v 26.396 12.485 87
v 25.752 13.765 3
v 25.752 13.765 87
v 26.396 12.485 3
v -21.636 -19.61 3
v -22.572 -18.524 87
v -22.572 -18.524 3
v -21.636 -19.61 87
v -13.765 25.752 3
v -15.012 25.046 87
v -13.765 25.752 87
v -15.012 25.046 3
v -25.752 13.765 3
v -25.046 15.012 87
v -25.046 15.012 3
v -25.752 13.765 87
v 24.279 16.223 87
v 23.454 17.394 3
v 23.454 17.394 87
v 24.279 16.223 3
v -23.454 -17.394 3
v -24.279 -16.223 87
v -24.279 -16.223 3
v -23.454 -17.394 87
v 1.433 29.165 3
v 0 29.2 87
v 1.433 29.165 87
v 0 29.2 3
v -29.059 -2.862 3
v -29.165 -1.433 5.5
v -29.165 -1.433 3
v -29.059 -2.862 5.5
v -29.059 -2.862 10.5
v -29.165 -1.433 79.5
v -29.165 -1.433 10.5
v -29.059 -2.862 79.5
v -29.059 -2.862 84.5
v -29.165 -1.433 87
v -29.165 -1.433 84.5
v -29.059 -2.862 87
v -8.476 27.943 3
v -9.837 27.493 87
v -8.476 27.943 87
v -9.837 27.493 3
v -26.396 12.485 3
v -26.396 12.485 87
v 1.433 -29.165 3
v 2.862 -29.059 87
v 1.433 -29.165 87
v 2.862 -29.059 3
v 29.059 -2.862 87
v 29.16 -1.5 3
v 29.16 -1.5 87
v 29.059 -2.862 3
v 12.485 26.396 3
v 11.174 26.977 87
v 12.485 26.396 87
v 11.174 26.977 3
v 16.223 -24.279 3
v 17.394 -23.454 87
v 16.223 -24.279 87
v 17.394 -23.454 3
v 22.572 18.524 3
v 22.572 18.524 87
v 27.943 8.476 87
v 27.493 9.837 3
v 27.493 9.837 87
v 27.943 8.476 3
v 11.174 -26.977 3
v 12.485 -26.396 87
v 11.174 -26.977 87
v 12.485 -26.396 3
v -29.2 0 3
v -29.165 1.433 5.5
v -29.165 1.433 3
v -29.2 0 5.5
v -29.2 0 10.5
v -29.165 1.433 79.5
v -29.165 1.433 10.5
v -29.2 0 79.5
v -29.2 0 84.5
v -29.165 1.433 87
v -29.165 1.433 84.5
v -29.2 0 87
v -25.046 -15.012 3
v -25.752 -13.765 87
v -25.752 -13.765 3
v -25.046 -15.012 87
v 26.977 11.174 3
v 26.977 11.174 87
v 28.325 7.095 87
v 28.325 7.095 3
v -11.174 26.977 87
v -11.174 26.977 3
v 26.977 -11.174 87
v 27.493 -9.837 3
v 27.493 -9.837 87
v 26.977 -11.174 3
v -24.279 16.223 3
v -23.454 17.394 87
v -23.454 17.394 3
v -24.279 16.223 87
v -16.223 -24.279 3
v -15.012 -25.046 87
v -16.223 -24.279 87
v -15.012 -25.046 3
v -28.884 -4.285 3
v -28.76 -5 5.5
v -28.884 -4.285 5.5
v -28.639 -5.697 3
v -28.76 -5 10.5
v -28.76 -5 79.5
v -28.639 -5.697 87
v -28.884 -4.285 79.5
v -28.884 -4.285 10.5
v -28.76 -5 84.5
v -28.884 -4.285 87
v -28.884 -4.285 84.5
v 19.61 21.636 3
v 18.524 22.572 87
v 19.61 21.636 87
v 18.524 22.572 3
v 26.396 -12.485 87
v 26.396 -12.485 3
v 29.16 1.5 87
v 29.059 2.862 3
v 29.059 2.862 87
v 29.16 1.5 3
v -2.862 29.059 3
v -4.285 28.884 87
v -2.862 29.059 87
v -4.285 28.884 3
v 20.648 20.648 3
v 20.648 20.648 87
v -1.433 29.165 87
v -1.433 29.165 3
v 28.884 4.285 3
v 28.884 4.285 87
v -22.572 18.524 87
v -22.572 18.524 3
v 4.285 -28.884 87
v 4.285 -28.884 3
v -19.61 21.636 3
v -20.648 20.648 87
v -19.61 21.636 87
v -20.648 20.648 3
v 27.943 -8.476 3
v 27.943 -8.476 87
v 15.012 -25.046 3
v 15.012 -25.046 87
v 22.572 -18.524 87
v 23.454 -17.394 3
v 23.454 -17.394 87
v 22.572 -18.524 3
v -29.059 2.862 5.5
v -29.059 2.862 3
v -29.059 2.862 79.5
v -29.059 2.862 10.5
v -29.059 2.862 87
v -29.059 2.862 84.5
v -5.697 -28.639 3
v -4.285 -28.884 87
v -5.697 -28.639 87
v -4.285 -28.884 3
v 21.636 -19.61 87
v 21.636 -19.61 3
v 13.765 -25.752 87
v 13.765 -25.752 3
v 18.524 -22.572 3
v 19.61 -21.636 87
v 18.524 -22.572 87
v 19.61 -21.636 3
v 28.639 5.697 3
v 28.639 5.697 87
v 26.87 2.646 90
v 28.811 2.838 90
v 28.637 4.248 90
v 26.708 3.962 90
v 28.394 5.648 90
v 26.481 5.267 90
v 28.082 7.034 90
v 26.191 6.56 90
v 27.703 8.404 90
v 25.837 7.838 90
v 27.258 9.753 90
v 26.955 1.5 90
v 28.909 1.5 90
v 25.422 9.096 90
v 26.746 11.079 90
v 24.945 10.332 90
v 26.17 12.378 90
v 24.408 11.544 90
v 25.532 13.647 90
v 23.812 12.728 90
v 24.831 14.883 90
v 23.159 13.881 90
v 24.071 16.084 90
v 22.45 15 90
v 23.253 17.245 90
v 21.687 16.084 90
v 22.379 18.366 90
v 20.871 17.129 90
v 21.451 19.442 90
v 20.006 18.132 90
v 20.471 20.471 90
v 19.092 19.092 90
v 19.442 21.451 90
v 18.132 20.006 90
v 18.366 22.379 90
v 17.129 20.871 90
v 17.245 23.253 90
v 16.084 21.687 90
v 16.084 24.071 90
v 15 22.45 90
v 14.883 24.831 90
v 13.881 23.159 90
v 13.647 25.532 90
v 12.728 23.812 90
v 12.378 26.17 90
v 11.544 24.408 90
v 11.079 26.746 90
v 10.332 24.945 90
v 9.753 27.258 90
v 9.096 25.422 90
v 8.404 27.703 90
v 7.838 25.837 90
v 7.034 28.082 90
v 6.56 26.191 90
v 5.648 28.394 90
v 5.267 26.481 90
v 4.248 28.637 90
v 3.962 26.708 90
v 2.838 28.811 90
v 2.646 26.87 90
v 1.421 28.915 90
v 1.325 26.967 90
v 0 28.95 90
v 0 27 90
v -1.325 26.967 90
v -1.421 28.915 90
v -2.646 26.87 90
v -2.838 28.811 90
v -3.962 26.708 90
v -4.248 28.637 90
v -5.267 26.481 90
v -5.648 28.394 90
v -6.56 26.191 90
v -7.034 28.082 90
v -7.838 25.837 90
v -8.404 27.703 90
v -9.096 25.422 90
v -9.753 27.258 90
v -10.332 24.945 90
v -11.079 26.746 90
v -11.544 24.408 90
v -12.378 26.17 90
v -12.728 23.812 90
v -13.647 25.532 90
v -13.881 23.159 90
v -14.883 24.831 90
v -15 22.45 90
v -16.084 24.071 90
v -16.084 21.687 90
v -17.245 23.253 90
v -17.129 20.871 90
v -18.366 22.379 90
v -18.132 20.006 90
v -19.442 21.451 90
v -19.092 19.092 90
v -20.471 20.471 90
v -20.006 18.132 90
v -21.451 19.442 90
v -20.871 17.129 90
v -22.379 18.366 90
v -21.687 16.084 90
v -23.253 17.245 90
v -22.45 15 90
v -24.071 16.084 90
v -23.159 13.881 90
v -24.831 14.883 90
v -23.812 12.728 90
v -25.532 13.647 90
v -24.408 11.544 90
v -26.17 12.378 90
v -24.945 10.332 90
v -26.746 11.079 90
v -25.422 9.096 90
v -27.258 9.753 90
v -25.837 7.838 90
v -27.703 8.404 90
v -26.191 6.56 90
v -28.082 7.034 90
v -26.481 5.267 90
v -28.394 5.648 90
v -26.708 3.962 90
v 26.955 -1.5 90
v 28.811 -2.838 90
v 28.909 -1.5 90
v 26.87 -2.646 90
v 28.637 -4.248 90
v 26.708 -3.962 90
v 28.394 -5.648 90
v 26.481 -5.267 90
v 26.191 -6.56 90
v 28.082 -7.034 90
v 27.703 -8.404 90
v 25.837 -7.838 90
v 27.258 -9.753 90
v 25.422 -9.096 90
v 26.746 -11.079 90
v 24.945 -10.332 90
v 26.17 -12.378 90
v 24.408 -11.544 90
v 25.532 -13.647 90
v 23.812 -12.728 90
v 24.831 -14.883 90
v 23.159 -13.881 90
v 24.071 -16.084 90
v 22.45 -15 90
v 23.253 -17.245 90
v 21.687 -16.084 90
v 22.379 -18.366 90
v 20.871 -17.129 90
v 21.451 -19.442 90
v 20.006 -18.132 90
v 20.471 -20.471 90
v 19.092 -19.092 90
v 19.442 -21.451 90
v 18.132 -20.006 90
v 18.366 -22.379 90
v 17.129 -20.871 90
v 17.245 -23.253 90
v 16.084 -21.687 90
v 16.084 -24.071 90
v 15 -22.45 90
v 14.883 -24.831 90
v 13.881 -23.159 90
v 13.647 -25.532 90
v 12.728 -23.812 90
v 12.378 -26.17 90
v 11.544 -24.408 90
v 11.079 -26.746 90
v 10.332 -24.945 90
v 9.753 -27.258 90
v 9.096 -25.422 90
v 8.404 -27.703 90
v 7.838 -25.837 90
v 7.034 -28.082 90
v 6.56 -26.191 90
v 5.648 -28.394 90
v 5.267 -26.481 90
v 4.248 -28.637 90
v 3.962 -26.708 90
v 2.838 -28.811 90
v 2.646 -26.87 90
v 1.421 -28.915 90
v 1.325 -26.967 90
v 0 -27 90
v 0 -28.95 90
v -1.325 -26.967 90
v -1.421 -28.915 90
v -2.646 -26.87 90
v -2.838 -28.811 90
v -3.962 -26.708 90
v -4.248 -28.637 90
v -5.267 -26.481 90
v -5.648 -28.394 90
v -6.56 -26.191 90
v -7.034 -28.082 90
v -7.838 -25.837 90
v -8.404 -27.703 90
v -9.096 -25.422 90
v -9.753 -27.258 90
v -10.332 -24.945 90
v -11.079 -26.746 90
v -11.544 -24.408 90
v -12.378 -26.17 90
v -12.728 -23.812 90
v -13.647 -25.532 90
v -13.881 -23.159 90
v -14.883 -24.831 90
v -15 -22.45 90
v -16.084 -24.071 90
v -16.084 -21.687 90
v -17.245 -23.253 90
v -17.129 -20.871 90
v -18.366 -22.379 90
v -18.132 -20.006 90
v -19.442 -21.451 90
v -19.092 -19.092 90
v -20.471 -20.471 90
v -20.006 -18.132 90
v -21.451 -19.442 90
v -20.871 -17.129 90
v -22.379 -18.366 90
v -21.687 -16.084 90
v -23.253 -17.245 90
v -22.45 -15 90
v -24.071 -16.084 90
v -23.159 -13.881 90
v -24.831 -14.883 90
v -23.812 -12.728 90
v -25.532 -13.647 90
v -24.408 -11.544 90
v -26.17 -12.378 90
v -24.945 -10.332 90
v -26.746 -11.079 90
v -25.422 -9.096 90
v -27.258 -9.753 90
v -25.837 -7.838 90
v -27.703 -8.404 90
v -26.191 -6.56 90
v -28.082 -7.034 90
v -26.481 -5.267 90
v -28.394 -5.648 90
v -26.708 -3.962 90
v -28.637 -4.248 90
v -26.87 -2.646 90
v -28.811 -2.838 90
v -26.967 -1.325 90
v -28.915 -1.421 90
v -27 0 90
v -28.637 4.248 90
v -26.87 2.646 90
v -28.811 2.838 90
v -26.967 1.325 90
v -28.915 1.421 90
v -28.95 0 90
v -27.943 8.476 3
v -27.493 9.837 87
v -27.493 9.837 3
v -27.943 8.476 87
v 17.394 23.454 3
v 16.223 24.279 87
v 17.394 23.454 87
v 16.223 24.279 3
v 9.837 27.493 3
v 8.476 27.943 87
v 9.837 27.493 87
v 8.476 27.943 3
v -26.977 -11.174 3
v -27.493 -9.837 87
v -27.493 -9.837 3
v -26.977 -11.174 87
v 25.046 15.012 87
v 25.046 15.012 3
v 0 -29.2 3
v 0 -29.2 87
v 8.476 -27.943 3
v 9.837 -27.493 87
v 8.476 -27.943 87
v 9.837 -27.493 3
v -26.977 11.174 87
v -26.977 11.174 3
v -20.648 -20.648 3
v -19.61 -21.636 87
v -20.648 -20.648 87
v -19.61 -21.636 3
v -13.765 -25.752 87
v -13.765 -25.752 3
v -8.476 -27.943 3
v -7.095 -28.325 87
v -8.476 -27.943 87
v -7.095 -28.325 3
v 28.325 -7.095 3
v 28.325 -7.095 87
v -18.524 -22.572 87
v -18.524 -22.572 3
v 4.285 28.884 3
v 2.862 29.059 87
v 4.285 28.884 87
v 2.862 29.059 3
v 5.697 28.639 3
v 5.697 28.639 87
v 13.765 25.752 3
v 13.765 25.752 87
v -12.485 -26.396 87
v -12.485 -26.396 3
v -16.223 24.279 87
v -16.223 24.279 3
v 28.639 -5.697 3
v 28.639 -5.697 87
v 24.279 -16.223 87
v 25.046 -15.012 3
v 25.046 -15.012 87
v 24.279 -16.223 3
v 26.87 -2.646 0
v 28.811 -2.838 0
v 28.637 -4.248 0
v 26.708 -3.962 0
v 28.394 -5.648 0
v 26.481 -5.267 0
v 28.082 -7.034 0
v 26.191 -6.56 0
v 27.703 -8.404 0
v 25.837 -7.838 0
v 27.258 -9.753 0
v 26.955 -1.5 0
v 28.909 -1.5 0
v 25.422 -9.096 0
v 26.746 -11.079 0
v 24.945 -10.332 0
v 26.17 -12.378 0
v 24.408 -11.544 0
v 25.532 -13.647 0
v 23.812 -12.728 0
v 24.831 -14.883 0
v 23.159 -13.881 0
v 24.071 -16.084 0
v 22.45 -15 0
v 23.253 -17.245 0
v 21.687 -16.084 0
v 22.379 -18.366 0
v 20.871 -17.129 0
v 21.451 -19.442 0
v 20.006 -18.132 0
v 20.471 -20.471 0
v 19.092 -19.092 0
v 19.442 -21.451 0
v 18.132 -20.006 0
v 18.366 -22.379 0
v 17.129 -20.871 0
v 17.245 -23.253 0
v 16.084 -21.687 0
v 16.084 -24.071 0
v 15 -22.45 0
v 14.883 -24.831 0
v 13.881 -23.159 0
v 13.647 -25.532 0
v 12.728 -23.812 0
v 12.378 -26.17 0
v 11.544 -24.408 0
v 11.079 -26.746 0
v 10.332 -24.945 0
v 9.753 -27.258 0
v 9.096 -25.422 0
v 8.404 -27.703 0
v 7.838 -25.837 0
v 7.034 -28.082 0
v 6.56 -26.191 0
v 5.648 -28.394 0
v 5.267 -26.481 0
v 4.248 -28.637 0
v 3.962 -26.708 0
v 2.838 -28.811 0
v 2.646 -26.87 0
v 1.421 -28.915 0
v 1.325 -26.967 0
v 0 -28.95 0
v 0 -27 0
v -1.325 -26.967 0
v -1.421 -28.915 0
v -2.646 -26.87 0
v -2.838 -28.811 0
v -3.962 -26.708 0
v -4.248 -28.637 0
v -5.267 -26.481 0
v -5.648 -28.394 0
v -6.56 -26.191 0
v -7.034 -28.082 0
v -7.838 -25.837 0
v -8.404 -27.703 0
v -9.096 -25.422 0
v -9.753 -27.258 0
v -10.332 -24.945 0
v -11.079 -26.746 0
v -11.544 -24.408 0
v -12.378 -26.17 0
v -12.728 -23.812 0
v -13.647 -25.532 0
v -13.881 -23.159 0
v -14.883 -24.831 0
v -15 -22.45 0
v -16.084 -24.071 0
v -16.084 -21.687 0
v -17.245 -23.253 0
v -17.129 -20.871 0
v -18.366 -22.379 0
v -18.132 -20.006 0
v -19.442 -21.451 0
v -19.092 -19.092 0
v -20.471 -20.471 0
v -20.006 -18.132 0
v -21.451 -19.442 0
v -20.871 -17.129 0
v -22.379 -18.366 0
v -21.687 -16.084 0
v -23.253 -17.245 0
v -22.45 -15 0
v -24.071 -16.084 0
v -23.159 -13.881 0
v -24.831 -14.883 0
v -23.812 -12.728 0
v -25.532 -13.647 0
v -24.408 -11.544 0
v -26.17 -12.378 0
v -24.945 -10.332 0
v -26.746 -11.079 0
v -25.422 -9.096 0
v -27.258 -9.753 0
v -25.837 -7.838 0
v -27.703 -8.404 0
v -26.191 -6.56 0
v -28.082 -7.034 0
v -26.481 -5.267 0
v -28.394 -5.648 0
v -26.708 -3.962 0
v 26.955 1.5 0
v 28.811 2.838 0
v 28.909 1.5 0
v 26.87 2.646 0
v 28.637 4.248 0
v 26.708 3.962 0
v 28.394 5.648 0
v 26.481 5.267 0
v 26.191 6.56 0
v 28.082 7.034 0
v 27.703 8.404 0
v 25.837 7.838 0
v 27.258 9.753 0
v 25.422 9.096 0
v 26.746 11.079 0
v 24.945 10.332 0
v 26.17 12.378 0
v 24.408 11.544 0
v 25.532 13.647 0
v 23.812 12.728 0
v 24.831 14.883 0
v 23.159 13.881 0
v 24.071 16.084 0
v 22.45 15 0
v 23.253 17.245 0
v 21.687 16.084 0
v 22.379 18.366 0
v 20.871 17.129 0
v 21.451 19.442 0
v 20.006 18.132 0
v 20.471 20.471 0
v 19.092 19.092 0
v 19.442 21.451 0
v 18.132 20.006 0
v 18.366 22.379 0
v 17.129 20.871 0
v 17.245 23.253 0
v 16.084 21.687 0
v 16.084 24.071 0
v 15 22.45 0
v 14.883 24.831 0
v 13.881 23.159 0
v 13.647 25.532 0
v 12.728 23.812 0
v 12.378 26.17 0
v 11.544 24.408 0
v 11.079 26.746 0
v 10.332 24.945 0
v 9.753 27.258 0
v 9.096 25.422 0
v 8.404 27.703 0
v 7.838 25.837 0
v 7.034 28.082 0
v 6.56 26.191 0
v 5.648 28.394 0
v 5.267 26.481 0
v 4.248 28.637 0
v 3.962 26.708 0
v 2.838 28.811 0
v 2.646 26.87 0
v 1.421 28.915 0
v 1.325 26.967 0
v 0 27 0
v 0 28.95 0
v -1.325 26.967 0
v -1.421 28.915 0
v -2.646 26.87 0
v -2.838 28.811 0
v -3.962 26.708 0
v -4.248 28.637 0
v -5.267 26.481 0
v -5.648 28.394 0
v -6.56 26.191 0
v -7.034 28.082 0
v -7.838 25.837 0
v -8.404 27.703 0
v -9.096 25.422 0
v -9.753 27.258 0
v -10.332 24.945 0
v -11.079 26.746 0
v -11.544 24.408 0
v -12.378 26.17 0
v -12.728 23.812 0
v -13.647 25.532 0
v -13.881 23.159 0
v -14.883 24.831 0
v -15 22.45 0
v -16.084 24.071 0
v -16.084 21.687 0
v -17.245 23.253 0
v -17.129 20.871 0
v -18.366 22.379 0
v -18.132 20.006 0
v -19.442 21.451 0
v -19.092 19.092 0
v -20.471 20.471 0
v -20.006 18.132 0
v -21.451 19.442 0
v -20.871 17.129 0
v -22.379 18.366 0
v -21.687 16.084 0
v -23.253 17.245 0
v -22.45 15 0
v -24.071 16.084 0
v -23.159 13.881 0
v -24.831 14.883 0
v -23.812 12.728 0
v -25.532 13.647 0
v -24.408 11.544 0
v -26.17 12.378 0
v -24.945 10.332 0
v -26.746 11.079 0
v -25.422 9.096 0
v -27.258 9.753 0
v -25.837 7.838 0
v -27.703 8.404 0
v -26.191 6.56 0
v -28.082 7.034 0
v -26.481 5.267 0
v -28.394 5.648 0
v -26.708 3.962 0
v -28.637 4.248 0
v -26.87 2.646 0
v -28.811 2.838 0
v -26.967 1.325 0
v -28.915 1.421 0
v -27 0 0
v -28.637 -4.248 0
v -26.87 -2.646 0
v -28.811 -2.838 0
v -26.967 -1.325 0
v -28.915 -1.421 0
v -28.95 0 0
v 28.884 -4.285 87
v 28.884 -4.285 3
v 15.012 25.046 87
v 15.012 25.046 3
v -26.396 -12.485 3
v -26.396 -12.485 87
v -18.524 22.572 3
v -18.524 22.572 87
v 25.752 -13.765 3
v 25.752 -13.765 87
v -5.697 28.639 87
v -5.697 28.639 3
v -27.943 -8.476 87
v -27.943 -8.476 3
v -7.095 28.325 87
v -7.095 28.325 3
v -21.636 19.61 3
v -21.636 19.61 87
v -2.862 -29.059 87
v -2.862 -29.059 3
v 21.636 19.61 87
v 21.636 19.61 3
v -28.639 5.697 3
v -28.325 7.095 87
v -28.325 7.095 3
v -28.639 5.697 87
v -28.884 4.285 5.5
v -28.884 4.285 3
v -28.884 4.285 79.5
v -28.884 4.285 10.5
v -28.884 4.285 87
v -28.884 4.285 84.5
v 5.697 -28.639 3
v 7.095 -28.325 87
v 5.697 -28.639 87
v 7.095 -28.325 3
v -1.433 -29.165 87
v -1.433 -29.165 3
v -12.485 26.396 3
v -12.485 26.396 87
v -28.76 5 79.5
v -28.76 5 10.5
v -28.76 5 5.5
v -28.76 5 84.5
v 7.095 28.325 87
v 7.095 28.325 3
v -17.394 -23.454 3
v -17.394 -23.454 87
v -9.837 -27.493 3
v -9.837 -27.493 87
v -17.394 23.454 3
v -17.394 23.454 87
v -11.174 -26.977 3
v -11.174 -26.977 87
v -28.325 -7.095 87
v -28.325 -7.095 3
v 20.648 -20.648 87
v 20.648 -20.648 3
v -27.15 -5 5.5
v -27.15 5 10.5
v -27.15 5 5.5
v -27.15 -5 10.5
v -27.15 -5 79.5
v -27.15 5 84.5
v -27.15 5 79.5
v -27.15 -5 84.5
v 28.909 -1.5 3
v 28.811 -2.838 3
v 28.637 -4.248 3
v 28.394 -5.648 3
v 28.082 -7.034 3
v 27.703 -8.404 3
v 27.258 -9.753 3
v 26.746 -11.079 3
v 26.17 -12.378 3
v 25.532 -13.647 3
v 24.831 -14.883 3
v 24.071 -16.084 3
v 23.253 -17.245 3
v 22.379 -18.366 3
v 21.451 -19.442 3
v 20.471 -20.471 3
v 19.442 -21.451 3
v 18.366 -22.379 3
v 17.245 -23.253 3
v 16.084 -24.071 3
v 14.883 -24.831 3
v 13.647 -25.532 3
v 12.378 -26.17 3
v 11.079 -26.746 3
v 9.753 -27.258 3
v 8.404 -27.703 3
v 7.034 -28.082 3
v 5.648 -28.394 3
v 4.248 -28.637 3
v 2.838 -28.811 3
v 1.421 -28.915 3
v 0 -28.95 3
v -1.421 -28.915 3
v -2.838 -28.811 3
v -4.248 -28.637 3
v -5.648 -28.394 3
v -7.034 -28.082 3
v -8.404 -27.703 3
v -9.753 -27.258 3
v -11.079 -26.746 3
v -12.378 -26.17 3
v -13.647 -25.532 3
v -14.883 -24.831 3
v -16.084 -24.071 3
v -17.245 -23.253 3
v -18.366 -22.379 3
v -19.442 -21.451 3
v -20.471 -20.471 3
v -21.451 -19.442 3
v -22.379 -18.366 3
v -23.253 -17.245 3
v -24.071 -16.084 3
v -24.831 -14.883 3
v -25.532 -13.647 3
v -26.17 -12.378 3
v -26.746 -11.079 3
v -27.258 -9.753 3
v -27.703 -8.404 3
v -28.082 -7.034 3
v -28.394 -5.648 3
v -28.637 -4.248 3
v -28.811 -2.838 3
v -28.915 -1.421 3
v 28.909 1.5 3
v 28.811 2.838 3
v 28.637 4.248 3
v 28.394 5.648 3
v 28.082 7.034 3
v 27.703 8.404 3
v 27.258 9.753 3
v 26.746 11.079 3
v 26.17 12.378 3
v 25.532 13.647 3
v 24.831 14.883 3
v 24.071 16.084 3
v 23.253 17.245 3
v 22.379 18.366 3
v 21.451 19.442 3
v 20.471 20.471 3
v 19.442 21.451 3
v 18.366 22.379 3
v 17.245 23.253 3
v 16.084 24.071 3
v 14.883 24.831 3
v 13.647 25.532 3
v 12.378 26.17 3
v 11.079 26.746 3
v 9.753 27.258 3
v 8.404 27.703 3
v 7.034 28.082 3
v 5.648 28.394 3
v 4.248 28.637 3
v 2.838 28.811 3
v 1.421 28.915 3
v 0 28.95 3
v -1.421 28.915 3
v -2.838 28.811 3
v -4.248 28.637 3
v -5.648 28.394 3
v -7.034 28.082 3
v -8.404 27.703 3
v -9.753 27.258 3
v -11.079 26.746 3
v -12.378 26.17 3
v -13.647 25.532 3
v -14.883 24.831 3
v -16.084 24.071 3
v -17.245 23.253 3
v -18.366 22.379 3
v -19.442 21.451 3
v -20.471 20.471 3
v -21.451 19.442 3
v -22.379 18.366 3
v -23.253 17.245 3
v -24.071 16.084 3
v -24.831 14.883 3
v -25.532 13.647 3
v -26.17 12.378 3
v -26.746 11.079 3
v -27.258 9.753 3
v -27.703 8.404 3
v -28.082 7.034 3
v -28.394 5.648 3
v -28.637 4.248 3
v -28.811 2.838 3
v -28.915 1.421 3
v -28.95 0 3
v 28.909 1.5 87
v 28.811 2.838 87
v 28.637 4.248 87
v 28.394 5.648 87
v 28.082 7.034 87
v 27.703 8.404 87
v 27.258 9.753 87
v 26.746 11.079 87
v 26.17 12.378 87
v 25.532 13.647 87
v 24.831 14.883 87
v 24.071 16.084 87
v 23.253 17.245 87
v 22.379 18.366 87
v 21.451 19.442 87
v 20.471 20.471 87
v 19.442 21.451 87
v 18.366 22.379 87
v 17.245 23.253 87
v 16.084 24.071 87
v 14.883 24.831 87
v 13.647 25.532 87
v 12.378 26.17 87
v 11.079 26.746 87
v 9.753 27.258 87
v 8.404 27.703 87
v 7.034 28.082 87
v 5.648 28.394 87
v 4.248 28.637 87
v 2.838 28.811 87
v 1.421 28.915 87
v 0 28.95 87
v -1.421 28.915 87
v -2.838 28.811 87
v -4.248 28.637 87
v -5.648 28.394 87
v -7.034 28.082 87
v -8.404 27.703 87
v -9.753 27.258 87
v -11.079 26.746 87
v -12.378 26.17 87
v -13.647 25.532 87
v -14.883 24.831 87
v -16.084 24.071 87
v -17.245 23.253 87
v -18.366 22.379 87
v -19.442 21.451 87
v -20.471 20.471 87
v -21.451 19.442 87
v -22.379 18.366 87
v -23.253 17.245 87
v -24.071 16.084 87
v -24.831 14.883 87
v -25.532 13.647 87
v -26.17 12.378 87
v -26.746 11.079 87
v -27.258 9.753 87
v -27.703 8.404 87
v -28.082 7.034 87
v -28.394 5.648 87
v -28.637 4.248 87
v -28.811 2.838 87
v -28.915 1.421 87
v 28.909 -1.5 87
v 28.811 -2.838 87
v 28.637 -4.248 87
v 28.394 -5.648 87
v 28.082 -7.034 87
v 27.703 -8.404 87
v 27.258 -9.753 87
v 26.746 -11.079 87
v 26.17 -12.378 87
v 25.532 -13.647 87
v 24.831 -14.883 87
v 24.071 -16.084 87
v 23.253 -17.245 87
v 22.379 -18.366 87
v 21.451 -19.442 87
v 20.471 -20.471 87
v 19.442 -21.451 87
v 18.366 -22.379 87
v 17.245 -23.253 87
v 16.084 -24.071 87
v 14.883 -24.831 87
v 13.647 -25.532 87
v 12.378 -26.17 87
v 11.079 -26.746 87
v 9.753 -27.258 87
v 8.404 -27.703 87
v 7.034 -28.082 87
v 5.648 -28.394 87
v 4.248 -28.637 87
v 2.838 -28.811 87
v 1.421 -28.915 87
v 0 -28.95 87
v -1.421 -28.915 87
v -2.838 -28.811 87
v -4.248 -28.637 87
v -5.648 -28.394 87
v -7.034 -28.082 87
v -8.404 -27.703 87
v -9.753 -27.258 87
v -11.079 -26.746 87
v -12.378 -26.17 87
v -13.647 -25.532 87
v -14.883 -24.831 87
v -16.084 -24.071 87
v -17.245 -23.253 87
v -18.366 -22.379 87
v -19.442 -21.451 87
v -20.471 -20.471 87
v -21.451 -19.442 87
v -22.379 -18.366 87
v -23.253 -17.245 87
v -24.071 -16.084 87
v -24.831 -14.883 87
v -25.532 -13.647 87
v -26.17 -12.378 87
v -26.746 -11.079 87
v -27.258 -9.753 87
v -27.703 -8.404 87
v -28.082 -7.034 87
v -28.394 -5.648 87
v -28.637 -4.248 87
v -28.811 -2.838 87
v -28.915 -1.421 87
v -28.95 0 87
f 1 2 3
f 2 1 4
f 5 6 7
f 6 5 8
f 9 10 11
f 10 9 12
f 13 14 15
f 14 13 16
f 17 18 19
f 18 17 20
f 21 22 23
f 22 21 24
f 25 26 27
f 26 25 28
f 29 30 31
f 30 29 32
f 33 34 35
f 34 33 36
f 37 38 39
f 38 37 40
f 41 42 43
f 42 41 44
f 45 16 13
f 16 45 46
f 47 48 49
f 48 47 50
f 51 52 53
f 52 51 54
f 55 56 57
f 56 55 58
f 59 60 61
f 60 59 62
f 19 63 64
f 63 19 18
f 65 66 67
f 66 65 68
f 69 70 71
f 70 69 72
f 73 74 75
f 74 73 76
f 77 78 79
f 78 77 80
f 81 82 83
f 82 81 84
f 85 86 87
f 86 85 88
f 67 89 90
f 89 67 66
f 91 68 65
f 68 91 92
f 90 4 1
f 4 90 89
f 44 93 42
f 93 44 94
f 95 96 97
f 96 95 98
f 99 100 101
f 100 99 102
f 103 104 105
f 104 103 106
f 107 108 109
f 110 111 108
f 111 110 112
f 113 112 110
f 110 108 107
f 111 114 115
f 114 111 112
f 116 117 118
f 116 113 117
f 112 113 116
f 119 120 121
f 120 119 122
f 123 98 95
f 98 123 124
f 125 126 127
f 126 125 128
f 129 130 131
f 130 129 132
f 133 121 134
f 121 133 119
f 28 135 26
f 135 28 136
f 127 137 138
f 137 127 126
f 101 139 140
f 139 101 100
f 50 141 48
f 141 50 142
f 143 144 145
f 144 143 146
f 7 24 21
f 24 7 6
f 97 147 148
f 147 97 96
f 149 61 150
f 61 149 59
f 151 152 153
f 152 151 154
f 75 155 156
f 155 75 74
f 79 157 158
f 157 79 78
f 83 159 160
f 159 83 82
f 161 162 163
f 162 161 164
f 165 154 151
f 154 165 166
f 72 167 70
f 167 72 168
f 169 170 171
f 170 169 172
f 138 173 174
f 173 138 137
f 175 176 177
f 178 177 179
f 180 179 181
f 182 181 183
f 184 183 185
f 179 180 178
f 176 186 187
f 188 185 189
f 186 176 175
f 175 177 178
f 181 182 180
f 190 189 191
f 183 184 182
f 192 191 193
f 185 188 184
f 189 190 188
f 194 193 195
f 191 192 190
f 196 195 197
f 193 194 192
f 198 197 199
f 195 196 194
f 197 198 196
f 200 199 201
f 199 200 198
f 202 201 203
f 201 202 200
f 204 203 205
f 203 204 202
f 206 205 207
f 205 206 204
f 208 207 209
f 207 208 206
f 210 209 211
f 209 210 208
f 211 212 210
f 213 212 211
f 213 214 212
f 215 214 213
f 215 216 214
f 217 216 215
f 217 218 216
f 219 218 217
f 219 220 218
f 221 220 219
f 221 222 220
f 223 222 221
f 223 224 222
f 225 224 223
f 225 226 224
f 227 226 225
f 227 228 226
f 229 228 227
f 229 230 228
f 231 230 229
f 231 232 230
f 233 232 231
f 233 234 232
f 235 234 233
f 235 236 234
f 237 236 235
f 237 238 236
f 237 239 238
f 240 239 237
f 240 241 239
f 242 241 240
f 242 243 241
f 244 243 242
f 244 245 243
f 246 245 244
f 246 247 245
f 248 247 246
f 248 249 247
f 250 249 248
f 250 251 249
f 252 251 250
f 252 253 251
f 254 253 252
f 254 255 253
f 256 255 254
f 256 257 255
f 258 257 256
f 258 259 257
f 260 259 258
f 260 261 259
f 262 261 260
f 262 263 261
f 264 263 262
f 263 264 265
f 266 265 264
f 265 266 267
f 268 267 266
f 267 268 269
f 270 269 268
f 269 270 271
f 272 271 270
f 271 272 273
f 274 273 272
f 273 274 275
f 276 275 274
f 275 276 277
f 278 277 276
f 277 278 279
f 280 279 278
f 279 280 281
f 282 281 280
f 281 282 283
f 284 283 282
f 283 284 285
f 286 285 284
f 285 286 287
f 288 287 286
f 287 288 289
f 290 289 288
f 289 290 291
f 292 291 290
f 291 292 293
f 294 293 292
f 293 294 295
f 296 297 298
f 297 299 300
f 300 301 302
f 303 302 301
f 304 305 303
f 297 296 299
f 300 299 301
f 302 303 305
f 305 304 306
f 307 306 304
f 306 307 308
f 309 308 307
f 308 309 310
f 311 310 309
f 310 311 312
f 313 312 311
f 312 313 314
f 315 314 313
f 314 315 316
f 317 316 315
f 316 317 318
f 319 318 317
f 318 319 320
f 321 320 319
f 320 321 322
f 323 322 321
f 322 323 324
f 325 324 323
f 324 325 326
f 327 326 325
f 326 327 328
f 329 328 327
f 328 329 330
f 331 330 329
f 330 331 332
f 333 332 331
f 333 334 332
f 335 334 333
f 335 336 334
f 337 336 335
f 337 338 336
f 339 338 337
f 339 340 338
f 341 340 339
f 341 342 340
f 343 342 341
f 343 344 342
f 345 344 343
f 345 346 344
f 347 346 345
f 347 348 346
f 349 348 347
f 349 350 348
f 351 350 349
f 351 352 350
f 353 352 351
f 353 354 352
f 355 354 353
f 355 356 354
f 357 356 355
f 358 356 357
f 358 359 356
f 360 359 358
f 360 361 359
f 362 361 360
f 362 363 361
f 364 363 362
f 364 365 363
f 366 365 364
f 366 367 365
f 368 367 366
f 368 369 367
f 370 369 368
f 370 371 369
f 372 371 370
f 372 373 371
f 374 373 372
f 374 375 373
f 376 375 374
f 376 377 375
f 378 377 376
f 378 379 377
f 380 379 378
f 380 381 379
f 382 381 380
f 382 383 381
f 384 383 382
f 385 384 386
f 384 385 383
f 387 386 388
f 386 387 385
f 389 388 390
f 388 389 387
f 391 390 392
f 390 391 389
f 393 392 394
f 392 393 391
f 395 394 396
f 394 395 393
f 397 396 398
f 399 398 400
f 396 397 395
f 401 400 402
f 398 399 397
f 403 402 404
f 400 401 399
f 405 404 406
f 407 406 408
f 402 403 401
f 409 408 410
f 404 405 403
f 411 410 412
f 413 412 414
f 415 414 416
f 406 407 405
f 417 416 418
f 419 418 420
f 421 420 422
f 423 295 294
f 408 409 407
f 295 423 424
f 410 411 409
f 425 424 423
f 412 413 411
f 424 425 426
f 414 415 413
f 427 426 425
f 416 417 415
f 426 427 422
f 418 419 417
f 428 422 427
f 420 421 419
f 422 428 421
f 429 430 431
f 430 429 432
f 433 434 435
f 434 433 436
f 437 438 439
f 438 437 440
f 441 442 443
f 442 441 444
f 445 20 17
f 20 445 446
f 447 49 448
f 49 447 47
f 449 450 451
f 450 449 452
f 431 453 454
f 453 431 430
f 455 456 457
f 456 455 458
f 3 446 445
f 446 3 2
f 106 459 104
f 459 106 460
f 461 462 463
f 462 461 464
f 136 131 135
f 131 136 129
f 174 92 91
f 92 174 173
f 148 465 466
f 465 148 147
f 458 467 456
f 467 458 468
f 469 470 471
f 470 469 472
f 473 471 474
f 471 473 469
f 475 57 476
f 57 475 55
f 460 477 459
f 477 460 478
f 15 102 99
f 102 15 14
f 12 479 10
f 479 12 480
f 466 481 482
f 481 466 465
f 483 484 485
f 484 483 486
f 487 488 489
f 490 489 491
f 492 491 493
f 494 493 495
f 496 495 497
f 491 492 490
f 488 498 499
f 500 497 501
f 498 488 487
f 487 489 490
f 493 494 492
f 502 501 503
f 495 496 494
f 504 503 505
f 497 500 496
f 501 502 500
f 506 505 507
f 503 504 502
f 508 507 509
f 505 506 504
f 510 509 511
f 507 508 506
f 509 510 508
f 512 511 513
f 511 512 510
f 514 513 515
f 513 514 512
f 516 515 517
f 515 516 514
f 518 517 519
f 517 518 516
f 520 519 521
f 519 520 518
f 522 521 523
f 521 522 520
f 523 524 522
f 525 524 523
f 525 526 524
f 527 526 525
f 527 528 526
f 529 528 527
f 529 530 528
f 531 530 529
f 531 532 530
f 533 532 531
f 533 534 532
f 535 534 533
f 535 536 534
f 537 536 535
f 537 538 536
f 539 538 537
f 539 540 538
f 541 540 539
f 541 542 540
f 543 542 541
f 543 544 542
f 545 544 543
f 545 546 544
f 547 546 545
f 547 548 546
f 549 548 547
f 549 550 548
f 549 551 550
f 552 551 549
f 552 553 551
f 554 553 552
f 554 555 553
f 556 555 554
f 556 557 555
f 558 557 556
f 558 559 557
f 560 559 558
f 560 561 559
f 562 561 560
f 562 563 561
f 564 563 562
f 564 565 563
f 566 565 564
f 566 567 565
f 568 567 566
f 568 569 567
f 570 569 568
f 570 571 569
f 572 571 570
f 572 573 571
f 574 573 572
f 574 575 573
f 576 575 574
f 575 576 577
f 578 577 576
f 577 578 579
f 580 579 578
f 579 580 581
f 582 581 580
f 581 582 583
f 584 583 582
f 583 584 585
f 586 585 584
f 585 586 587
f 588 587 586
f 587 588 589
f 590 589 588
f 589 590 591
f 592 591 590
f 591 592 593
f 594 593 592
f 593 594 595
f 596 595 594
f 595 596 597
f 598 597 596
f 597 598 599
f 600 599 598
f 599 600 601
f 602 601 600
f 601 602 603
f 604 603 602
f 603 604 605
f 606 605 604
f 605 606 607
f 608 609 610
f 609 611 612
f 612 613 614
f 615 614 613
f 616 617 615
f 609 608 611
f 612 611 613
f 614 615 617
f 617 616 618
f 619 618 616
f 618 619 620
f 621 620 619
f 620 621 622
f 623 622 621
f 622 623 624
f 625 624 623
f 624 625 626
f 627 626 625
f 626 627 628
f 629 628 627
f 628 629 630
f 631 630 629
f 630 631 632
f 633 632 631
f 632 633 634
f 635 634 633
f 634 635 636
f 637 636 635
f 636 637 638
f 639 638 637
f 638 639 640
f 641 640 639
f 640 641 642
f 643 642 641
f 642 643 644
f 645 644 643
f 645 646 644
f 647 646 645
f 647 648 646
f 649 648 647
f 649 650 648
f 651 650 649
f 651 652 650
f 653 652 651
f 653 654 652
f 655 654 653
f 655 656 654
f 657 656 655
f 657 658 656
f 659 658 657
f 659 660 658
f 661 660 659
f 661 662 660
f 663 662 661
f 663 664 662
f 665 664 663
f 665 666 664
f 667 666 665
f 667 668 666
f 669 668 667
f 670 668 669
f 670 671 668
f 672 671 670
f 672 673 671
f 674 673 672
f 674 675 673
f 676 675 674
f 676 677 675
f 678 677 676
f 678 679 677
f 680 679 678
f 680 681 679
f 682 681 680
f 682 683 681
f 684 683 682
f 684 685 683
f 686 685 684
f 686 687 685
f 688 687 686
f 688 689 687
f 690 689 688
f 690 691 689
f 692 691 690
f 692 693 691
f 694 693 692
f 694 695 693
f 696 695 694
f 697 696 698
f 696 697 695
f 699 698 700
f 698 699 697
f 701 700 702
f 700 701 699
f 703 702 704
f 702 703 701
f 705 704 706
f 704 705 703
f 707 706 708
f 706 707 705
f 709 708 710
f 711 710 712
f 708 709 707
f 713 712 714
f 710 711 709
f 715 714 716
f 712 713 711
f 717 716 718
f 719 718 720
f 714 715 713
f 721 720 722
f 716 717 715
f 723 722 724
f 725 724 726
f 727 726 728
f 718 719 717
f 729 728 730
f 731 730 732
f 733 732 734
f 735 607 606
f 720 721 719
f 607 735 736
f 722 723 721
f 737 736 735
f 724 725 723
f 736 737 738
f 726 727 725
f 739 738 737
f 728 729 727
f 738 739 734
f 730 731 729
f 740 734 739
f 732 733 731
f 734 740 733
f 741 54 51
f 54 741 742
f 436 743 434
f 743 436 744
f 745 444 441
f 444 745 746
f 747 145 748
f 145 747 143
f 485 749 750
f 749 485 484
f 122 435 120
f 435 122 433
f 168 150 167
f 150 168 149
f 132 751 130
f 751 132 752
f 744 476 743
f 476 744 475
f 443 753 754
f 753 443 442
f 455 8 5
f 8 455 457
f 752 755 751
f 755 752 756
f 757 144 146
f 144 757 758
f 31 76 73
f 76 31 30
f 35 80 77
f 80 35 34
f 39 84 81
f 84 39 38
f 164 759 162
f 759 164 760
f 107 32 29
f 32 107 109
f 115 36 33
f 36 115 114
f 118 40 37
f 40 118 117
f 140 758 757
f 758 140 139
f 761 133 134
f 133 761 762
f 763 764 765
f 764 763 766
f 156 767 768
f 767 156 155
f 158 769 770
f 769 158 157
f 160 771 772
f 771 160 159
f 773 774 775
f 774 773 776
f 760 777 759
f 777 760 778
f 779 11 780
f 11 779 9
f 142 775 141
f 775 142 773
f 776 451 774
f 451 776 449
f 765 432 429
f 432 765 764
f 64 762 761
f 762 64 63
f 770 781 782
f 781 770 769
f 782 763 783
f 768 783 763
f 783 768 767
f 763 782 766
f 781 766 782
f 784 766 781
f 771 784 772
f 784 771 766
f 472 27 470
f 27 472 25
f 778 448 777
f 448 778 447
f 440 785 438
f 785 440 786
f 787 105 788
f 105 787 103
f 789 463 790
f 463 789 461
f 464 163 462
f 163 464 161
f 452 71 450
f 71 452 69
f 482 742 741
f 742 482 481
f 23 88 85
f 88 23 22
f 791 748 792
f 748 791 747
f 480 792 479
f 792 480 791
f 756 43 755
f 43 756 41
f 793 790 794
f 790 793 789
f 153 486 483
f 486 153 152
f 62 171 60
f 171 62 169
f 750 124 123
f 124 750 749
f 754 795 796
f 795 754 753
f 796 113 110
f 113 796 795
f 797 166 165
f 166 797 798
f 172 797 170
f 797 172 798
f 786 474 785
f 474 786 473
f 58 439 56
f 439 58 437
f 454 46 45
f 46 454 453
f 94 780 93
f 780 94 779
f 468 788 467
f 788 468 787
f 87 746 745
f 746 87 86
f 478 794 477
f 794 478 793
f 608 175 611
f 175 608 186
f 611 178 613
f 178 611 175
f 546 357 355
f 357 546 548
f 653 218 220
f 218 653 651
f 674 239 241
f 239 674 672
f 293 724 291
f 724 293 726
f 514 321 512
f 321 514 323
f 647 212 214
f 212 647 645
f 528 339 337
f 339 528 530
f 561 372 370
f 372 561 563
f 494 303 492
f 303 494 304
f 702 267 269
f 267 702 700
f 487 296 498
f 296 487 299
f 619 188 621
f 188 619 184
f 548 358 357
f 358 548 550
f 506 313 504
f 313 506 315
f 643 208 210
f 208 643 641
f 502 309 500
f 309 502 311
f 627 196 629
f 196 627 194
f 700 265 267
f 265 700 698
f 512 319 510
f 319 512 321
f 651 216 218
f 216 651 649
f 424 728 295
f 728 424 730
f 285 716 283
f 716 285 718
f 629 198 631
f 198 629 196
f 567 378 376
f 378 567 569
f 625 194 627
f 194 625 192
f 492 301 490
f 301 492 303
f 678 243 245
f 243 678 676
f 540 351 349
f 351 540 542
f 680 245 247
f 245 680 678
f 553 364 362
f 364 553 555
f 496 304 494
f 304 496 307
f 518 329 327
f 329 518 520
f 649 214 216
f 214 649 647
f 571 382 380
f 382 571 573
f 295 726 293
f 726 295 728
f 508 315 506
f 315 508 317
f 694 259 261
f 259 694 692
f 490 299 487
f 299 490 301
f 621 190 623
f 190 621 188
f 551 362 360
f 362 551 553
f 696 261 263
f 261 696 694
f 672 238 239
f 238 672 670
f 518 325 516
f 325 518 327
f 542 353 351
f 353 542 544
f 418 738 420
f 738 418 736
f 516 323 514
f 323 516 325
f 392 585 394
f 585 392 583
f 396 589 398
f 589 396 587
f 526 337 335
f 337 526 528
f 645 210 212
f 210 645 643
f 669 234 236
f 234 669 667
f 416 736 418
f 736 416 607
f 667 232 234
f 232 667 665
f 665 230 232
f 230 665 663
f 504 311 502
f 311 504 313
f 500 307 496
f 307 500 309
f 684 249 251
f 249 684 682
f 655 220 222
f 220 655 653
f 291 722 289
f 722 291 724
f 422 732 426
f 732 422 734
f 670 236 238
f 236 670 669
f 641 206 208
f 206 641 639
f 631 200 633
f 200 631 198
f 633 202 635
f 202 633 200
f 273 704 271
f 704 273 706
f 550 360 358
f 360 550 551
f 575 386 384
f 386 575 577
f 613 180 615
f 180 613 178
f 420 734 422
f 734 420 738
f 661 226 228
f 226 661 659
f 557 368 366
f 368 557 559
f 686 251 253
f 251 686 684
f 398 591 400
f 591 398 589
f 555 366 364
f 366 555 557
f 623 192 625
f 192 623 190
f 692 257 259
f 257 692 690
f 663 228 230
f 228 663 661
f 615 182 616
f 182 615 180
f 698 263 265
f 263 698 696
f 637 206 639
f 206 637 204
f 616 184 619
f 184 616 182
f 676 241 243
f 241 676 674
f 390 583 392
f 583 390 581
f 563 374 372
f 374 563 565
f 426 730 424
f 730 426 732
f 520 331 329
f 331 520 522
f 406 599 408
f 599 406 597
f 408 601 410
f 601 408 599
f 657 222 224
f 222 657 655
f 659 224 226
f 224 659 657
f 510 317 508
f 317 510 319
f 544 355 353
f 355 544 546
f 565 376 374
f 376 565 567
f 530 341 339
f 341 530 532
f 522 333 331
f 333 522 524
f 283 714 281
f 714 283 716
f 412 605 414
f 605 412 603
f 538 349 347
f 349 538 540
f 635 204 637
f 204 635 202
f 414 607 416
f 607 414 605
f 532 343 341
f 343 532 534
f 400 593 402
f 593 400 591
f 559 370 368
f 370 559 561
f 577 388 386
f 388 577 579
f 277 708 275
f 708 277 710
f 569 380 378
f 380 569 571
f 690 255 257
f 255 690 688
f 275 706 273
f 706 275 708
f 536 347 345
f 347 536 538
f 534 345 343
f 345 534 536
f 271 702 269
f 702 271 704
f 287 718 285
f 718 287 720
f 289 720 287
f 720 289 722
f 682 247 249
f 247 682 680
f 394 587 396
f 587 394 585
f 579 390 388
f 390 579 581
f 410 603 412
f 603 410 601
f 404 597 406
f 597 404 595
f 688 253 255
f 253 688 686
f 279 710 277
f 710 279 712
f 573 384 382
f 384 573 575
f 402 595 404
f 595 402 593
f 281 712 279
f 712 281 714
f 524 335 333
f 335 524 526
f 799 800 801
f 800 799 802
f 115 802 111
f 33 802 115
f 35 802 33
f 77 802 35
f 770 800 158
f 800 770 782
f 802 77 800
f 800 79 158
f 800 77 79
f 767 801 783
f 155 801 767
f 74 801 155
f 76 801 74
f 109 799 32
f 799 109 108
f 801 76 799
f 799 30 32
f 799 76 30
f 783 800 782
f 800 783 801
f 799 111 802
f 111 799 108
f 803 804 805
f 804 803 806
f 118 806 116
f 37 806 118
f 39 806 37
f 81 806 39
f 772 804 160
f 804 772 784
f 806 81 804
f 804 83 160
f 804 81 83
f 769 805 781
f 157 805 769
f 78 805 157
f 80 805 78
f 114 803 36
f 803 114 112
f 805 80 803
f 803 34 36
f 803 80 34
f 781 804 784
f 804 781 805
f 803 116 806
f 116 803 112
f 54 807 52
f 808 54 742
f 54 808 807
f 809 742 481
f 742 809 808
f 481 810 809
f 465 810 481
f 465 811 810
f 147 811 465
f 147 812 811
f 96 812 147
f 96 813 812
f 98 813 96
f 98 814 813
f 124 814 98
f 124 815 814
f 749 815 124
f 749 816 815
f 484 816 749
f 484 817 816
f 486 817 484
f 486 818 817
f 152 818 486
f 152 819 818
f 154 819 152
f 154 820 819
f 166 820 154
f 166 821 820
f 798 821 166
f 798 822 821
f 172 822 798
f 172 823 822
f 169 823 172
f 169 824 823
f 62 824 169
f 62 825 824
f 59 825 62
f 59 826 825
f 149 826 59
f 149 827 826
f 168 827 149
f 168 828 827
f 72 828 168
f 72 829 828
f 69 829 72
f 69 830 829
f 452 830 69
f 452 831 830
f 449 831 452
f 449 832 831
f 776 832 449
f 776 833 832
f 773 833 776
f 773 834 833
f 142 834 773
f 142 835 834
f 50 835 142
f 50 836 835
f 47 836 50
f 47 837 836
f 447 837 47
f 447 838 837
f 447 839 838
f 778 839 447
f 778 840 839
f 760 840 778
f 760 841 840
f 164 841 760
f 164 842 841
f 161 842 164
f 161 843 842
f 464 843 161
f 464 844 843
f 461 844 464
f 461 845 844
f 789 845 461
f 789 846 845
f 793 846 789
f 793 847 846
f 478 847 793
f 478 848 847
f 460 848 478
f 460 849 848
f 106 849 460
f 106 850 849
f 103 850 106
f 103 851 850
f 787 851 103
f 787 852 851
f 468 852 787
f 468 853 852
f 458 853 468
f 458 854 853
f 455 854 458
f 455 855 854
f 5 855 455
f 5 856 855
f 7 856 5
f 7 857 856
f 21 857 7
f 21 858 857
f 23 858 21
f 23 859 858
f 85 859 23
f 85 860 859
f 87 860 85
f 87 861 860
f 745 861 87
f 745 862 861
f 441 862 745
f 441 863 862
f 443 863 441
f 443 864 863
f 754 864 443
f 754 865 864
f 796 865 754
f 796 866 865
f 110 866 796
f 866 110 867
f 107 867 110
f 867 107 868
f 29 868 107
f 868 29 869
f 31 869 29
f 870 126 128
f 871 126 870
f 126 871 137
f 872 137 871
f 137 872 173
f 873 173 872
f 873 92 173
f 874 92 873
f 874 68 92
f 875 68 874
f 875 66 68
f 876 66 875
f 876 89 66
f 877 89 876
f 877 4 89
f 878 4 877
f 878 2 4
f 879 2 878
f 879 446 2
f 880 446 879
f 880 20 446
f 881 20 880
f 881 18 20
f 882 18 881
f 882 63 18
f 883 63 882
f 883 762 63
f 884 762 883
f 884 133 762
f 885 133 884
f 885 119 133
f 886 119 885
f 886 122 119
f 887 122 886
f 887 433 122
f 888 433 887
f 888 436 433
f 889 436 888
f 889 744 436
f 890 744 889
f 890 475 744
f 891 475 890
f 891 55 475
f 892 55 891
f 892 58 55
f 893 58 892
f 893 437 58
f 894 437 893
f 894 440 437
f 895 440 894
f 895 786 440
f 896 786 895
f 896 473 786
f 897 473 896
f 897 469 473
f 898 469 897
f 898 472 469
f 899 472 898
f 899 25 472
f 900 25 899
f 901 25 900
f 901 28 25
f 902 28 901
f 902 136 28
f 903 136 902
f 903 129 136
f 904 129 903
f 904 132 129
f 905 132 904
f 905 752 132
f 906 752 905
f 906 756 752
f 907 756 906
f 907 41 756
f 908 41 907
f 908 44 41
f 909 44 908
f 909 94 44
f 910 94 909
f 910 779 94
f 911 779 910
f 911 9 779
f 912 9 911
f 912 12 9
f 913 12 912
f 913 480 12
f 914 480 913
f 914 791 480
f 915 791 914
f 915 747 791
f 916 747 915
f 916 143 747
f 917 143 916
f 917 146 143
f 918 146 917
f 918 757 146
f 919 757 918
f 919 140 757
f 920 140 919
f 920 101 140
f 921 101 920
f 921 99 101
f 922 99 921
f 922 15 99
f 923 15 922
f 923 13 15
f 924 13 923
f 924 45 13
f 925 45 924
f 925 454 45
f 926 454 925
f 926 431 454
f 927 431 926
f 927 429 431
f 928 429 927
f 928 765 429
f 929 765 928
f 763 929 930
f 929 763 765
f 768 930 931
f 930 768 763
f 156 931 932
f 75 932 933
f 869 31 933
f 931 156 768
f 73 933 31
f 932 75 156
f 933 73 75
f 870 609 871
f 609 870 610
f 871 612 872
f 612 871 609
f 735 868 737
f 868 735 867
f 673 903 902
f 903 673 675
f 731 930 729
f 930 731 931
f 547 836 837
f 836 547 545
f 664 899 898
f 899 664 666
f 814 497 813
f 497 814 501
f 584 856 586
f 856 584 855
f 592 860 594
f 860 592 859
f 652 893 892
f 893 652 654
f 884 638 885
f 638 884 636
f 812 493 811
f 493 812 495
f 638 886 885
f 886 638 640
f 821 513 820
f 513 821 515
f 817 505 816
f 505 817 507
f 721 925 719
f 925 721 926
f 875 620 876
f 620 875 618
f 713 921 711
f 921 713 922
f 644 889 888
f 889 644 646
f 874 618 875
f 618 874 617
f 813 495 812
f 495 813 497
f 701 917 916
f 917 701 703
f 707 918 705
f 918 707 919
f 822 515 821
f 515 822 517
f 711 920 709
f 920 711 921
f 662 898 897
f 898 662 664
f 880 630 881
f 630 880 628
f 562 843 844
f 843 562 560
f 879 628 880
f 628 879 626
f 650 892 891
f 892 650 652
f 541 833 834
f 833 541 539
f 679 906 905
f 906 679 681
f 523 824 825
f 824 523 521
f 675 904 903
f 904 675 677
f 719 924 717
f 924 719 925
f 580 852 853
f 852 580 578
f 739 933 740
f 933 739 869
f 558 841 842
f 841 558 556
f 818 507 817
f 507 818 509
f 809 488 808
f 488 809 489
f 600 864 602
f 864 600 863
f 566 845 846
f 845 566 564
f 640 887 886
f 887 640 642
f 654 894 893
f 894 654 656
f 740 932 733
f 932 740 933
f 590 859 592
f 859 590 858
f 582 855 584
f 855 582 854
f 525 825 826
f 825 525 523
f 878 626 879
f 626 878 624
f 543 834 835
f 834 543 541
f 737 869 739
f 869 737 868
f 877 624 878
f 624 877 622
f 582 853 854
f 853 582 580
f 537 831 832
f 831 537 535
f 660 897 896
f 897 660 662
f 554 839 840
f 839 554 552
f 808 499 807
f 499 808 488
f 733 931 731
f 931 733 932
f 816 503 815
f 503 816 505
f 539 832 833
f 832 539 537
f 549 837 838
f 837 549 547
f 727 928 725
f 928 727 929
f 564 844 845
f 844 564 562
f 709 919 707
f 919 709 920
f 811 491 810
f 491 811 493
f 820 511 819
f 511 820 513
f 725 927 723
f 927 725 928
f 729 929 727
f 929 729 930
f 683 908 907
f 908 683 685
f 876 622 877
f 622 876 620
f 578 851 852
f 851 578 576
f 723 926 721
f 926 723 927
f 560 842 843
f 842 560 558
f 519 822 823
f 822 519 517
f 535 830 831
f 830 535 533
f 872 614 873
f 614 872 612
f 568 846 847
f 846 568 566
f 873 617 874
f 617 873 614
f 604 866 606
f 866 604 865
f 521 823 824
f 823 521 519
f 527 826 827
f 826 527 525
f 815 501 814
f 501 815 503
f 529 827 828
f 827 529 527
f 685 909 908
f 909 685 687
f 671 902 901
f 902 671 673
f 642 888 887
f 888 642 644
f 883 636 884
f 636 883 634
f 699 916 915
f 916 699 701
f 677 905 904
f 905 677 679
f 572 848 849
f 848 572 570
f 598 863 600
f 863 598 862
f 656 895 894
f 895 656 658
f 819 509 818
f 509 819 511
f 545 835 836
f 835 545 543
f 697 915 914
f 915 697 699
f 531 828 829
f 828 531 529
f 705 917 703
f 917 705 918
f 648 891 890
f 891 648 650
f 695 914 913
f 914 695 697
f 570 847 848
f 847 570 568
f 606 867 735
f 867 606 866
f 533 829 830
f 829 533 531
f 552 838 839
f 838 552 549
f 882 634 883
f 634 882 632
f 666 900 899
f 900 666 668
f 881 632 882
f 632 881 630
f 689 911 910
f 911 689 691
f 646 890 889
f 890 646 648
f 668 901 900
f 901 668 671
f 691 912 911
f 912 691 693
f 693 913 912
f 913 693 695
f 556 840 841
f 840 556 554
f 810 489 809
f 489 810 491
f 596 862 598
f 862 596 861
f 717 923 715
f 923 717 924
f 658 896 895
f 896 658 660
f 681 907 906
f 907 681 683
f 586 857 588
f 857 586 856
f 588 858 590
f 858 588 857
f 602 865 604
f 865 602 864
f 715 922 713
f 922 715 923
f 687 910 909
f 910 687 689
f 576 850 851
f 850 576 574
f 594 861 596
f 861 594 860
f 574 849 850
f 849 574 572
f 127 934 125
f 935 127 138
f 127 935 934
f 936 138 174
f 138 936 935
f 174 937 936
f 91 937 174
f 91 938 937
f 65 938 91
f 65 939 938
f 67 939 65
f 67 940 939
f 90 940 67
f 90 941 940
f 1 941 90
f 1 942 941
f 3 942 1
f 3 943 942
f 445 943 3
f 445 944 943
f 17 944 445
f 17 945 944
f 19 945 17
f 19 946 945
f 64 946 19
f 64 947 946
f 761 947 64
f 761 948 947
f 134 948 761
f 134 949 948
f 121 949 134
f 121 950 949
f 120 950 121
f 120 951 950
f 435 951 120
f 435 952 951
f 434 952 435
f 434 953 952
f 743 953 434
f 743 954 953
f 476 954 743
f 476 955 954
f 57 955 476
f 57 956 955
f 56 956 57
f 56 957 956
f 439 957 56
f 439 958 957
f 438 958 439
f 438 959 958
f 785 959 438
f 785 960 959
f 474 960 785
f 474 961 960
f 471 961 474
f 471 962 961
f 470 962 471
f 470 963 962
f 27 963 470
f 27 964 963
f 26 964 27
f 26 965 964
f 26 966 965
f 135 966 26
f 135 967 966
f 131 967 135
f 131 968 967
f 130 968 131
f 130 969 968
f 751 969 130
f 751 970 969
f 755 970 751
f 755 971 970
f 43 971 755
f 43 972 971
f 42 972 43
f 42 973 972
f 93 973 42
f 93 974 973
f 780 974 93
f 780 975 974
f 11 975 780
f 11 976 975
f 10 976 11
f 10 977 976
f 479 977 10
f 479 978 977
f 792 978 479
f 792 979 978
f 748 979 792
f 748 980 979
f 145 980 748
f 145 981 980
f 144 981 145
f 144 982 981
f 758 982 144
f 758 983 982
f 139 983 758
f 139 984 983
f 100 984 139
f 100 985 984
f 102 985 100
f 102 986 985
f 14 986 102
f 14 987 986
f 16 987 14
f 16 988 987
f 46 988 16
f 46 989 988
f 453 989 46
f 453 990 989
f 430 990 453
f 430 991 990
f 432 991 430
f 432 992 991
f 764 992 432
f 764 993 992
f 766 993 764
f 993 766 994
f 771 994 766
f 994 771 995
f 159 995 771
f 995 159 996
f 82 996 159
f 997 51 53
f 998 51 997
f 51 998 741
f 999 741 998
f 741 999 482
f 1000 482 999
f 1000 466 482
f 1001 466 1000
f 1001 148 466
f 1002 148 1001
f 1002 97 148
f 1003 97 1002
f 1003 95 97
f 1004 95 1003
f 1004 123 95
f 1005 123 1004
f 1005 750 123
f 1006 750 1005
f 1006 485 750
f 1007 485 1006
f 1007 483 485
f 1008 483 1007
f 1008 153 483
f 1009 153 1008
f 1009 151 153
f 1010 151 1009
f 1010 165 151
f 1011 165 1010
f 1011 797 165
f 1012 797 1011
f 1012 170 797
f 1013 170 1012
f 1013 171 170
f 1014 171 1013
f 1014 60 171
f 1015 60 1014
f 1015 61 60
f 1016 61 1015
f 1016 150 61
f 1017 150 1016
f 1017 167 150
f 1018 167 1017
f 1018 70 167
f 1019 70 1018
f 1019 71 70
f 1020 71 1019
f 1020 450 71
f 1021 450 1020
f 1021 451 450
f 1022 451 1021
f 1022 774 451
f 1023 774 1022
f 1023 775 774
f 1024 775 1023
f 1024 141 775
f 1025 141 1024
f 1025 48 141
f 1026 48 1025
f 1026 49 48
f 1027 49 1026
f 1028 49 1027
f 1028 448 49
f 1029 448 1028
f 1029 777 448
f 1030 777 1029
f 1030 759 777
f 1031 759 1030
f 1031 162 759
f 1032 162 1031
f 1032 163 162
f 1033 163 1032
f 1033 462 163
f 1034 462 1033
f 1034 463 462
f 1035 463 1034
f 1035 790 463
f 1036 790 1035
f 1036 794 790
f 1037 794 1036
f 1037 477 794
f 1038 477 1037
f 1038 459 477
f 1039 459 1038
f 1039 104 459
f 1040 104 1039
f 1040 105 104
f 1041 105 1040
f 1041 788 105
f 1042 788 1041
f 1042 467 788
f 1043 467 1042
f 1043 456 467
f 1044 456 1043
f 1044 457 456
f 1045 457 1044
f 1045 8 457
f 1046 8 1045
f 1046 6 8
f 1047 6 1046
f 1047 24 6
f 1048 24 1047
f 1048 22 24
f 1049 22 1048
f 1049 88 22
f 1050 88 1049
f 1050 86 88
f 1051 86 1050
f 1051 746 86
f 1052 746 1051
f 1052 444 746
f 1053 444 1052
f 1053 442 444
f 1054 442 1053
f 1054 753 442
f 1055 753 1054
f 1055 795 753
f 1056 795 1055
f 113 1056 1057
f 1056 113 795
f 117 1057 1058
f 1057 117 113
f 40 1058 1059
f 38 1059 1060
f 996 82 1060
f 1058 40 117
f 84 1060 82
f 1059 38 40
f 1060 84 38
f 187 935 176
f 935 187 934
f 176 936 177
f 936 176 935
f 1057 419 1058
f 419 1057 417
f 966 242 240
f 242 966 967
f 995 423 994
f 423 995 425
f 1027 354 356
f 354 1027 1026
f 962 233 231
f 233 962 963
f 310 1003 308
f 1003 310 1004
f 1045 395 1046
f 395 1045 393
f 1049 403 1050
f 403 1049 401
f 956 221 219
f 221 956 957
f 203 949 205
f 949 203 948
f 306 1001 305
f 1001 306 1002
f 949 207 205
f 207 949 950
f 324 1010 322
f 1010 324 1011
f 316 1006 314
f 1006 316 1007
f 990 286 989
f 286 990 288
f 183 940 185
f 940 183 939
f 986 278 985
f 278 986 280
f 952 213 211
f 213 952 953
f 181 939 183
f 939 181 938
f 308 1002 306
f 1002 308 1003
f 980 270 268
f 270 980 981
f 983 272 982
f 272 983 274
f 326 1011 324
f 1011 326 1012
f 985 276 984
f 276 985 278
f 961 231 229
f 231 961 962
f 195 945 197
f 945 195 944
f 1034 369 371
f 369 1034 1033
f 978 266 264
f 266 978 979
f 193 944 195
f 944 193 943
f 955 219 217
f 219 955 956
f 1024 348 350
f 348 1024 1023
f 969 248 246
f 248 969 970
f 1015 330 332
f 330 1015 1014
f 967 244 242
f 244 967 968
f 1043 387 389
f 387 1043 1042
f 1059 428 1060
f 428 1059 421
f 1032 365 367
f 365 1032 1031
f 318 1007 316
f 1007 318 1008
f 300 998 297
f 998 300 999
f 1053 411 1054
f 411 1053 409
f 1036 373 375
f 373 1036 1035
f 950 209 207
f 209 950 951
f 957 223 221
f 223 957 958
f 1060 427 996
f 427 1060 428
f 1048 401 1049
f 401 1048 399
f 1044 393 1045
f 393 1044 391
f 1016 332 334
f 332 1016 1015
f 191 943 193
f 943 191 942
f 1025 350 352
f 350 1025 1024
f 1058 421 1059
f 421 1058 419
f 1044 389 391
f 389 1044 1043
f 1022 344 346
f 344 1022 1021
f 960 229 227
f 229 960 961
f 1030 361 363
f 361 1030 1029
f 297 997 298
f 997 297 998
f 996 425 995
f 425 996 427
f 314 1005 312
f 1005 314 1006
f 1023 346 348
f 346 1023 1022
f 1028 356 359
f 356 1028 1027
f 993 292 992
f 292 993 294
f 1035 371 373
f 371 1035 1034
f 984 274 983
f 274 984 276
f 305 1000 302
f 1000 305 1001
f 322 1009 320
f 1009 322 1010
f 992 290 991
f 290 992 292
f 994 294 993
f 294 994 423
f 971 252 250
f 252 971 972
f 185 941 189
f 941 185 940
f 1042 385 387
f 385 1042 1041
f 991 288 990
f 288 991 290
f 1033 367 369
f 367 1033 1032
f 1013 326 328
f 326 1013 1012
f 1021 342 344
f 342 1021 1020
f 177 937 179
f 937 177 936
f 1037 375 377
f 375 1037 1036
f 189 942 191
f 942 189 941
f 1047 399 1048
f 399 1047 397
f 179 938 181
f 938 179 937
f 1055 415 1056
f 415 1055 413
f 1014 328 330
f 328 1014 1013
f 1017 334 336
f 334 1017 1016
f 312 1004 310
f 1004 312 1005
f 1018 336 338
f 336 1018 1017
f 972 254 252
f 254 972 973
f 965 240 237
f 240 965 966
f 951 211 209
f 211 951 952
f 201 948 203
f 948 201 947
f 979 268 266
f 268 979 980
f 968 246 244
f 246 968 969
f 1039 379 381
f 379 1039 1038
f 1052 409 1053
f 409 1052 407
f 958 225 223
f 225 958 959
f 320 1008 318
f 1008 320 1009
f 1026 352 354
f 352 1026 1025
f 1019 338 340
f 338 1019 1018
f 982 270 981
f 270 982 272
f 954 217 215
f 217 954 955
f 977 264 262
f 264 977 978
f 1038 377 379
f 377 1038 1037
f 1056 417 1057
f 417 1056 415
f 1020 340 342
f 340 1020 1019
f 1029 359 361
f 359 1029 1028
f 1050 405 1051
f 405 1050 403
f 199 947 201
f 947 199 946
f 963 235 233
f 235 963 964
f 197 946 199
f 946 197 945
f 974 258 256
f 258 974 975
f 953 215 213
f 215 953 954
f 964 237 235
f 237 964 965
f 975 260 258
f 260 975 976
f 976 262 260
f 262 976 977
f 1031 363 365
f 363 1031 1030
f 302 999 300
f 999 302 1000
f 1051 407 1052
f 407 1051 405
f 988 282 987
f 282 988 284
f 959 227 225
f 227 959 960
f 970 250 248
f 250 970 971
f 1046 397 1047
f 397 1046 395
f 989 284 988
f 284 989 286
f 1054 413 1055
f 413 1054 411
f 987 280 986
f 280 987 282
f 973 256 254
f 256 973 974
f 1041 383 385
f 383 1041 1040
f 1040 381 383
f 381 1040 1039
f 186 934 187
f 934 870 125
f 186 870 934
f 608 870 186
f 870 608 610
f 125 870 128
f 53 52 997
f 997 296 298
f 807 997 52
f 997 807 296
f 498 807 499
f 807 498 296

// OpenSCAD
// Lio v0.1 — Removable Flocked Inner Sleeve
// Units: millimeters
//
// This part integrates:
// - flocking carrier
// - replaceable optical black liner support
// - flexible tolerance compensator
// - vertical seam/keyway for alignment and flex
//
// Print orientation:
// - vertical
//
// Material:
// - PETG preferred
//
// Important:
// - Test fit this sleeve inside the fixed outer tube BEFORE applying flocking.
// - After flocking, the inside diameter becomes smaller and the sleeve may become stiffer.
// - If it is too tight, reduce sleeve_od by 0.3–0.5 mm.
// - If it is too loose, increase sleeve_od by 0.2–0.3 mm.

$fn = 128;
eps = 0.05;

// ----------------------------
// Sleeve dimensions
// ----------------------------

sleeve_od = 58.4;       // outer diameter before flocking
sleeve_id = 54.0;       // inner optical bore before flocking
sleeve_h  = 90.0;       // sleeve height

// Wall thickness is calculated automatically.
wall_thickness = (sleeve_od - sleeve_id) / 2;

// ----------------------------
// Vertical split seam / keyway
// ----------------------------

seam_width = 3.0;       // tangential slot width
seam_depth = wall_thickness + 1.2;  
// depth should cut fully through the sleeve wall.
// It also acts as a keyway for the outer tube's internal alignment rib.

seam_z_margin = 0.0;    // set to 2–5 if you want seam not to reach ends

// ----------------------------
// Optional grip tabs / removal notches
// ----------------------------

enable_removal_notches = true;

notch_w = 10;           // width of small finger notches
notch_h = 5;            // notch height
notch_depth = 2.0;      // radial notch depth

// ----------------------------
// Optional top/bottom relief bands
// ----------------------------

enable_relief_bands = true;

relief_h = 3.0;         // height of relief at top and bottom
relief_depth = 0.25;    // reduce OD slightly at the ends for easier insertion

// ----------------------------
// Helper modules
// ----------------------------

module tube(od, id, h) {
    difference() {
        cylinder(d = od, h = h);
        translate([0, 0, -1])
            cylinder(d = id, h = h + 2);
    }
}

module vertical_seam_cut() {
    // Cut through the sleeve wall on +X side.
    // This creates both flex and an alignment slot.
    translate([
        sleeve_od/2 - seam_depth/2 + eps,
        0,
        sleeve_h/2
    ])
        cube([seam_depth + 2 * eps, seam_width, sleeve_h + 2], center = true);
}

module removal_notches() {
    // Small shallow notches near top and bottom on the side opposite the seam.
    // These make it easier to pull the sleeve out without touching the flocked interior.
    for (zpos = [8, sleeve_h - 8]) {
        translate([
            -sleeve_od/2 + notch_depth/2,
            0,
            zpos
        ])
            cube([notch_depth + 2 * eps, notch_w, notch_h], center = true);
    }
}

module relief_band_cuts() {
    // Slightly reduce OD near top and bottom edges.
    // This prevents the first few millimeters from binding inside the outer tube.
    difference() {
        // Nothing here directly; relief is implemented as subtractive annular cuts below.
    }
}

module annular_relief_cut(zpos) {
    // Removes a very shallow ring from the outside diameter.
    // This creates a lead-in relief but keeps the sleeve mostly cylindrical.
    difference() {
        translate([0, 0, zpos])
            cylinder(d = sleeve_od + 2, h = relief_h);

        translate([0, 0, zpos - eps])
            cylinder(d = sleeve_od - 2 * relief_depth, h = relief_h + 2 * eps);
    }
}

// ----------------------------
// Main model
// ----------------------------

difference() {

    // Main sleeve body
    tube(sleeve_od, sleeve_id, sleeve_h);

    // Full-height seam/keyway
    translate([0, 0, seam_z_margin])
        vertical_seam_cut();

    // Optional removal notches
    if (enable_removal_notches) {
        removal_notches();
    }

    // Optional shallow OD relief at top and bottom
    if (enable_relief_bands) {
        // bottom relief
        annular_relief_cut(0);

        // top relief
        annular_relief_cut(sleeve_h - relief_h);
    }
}
